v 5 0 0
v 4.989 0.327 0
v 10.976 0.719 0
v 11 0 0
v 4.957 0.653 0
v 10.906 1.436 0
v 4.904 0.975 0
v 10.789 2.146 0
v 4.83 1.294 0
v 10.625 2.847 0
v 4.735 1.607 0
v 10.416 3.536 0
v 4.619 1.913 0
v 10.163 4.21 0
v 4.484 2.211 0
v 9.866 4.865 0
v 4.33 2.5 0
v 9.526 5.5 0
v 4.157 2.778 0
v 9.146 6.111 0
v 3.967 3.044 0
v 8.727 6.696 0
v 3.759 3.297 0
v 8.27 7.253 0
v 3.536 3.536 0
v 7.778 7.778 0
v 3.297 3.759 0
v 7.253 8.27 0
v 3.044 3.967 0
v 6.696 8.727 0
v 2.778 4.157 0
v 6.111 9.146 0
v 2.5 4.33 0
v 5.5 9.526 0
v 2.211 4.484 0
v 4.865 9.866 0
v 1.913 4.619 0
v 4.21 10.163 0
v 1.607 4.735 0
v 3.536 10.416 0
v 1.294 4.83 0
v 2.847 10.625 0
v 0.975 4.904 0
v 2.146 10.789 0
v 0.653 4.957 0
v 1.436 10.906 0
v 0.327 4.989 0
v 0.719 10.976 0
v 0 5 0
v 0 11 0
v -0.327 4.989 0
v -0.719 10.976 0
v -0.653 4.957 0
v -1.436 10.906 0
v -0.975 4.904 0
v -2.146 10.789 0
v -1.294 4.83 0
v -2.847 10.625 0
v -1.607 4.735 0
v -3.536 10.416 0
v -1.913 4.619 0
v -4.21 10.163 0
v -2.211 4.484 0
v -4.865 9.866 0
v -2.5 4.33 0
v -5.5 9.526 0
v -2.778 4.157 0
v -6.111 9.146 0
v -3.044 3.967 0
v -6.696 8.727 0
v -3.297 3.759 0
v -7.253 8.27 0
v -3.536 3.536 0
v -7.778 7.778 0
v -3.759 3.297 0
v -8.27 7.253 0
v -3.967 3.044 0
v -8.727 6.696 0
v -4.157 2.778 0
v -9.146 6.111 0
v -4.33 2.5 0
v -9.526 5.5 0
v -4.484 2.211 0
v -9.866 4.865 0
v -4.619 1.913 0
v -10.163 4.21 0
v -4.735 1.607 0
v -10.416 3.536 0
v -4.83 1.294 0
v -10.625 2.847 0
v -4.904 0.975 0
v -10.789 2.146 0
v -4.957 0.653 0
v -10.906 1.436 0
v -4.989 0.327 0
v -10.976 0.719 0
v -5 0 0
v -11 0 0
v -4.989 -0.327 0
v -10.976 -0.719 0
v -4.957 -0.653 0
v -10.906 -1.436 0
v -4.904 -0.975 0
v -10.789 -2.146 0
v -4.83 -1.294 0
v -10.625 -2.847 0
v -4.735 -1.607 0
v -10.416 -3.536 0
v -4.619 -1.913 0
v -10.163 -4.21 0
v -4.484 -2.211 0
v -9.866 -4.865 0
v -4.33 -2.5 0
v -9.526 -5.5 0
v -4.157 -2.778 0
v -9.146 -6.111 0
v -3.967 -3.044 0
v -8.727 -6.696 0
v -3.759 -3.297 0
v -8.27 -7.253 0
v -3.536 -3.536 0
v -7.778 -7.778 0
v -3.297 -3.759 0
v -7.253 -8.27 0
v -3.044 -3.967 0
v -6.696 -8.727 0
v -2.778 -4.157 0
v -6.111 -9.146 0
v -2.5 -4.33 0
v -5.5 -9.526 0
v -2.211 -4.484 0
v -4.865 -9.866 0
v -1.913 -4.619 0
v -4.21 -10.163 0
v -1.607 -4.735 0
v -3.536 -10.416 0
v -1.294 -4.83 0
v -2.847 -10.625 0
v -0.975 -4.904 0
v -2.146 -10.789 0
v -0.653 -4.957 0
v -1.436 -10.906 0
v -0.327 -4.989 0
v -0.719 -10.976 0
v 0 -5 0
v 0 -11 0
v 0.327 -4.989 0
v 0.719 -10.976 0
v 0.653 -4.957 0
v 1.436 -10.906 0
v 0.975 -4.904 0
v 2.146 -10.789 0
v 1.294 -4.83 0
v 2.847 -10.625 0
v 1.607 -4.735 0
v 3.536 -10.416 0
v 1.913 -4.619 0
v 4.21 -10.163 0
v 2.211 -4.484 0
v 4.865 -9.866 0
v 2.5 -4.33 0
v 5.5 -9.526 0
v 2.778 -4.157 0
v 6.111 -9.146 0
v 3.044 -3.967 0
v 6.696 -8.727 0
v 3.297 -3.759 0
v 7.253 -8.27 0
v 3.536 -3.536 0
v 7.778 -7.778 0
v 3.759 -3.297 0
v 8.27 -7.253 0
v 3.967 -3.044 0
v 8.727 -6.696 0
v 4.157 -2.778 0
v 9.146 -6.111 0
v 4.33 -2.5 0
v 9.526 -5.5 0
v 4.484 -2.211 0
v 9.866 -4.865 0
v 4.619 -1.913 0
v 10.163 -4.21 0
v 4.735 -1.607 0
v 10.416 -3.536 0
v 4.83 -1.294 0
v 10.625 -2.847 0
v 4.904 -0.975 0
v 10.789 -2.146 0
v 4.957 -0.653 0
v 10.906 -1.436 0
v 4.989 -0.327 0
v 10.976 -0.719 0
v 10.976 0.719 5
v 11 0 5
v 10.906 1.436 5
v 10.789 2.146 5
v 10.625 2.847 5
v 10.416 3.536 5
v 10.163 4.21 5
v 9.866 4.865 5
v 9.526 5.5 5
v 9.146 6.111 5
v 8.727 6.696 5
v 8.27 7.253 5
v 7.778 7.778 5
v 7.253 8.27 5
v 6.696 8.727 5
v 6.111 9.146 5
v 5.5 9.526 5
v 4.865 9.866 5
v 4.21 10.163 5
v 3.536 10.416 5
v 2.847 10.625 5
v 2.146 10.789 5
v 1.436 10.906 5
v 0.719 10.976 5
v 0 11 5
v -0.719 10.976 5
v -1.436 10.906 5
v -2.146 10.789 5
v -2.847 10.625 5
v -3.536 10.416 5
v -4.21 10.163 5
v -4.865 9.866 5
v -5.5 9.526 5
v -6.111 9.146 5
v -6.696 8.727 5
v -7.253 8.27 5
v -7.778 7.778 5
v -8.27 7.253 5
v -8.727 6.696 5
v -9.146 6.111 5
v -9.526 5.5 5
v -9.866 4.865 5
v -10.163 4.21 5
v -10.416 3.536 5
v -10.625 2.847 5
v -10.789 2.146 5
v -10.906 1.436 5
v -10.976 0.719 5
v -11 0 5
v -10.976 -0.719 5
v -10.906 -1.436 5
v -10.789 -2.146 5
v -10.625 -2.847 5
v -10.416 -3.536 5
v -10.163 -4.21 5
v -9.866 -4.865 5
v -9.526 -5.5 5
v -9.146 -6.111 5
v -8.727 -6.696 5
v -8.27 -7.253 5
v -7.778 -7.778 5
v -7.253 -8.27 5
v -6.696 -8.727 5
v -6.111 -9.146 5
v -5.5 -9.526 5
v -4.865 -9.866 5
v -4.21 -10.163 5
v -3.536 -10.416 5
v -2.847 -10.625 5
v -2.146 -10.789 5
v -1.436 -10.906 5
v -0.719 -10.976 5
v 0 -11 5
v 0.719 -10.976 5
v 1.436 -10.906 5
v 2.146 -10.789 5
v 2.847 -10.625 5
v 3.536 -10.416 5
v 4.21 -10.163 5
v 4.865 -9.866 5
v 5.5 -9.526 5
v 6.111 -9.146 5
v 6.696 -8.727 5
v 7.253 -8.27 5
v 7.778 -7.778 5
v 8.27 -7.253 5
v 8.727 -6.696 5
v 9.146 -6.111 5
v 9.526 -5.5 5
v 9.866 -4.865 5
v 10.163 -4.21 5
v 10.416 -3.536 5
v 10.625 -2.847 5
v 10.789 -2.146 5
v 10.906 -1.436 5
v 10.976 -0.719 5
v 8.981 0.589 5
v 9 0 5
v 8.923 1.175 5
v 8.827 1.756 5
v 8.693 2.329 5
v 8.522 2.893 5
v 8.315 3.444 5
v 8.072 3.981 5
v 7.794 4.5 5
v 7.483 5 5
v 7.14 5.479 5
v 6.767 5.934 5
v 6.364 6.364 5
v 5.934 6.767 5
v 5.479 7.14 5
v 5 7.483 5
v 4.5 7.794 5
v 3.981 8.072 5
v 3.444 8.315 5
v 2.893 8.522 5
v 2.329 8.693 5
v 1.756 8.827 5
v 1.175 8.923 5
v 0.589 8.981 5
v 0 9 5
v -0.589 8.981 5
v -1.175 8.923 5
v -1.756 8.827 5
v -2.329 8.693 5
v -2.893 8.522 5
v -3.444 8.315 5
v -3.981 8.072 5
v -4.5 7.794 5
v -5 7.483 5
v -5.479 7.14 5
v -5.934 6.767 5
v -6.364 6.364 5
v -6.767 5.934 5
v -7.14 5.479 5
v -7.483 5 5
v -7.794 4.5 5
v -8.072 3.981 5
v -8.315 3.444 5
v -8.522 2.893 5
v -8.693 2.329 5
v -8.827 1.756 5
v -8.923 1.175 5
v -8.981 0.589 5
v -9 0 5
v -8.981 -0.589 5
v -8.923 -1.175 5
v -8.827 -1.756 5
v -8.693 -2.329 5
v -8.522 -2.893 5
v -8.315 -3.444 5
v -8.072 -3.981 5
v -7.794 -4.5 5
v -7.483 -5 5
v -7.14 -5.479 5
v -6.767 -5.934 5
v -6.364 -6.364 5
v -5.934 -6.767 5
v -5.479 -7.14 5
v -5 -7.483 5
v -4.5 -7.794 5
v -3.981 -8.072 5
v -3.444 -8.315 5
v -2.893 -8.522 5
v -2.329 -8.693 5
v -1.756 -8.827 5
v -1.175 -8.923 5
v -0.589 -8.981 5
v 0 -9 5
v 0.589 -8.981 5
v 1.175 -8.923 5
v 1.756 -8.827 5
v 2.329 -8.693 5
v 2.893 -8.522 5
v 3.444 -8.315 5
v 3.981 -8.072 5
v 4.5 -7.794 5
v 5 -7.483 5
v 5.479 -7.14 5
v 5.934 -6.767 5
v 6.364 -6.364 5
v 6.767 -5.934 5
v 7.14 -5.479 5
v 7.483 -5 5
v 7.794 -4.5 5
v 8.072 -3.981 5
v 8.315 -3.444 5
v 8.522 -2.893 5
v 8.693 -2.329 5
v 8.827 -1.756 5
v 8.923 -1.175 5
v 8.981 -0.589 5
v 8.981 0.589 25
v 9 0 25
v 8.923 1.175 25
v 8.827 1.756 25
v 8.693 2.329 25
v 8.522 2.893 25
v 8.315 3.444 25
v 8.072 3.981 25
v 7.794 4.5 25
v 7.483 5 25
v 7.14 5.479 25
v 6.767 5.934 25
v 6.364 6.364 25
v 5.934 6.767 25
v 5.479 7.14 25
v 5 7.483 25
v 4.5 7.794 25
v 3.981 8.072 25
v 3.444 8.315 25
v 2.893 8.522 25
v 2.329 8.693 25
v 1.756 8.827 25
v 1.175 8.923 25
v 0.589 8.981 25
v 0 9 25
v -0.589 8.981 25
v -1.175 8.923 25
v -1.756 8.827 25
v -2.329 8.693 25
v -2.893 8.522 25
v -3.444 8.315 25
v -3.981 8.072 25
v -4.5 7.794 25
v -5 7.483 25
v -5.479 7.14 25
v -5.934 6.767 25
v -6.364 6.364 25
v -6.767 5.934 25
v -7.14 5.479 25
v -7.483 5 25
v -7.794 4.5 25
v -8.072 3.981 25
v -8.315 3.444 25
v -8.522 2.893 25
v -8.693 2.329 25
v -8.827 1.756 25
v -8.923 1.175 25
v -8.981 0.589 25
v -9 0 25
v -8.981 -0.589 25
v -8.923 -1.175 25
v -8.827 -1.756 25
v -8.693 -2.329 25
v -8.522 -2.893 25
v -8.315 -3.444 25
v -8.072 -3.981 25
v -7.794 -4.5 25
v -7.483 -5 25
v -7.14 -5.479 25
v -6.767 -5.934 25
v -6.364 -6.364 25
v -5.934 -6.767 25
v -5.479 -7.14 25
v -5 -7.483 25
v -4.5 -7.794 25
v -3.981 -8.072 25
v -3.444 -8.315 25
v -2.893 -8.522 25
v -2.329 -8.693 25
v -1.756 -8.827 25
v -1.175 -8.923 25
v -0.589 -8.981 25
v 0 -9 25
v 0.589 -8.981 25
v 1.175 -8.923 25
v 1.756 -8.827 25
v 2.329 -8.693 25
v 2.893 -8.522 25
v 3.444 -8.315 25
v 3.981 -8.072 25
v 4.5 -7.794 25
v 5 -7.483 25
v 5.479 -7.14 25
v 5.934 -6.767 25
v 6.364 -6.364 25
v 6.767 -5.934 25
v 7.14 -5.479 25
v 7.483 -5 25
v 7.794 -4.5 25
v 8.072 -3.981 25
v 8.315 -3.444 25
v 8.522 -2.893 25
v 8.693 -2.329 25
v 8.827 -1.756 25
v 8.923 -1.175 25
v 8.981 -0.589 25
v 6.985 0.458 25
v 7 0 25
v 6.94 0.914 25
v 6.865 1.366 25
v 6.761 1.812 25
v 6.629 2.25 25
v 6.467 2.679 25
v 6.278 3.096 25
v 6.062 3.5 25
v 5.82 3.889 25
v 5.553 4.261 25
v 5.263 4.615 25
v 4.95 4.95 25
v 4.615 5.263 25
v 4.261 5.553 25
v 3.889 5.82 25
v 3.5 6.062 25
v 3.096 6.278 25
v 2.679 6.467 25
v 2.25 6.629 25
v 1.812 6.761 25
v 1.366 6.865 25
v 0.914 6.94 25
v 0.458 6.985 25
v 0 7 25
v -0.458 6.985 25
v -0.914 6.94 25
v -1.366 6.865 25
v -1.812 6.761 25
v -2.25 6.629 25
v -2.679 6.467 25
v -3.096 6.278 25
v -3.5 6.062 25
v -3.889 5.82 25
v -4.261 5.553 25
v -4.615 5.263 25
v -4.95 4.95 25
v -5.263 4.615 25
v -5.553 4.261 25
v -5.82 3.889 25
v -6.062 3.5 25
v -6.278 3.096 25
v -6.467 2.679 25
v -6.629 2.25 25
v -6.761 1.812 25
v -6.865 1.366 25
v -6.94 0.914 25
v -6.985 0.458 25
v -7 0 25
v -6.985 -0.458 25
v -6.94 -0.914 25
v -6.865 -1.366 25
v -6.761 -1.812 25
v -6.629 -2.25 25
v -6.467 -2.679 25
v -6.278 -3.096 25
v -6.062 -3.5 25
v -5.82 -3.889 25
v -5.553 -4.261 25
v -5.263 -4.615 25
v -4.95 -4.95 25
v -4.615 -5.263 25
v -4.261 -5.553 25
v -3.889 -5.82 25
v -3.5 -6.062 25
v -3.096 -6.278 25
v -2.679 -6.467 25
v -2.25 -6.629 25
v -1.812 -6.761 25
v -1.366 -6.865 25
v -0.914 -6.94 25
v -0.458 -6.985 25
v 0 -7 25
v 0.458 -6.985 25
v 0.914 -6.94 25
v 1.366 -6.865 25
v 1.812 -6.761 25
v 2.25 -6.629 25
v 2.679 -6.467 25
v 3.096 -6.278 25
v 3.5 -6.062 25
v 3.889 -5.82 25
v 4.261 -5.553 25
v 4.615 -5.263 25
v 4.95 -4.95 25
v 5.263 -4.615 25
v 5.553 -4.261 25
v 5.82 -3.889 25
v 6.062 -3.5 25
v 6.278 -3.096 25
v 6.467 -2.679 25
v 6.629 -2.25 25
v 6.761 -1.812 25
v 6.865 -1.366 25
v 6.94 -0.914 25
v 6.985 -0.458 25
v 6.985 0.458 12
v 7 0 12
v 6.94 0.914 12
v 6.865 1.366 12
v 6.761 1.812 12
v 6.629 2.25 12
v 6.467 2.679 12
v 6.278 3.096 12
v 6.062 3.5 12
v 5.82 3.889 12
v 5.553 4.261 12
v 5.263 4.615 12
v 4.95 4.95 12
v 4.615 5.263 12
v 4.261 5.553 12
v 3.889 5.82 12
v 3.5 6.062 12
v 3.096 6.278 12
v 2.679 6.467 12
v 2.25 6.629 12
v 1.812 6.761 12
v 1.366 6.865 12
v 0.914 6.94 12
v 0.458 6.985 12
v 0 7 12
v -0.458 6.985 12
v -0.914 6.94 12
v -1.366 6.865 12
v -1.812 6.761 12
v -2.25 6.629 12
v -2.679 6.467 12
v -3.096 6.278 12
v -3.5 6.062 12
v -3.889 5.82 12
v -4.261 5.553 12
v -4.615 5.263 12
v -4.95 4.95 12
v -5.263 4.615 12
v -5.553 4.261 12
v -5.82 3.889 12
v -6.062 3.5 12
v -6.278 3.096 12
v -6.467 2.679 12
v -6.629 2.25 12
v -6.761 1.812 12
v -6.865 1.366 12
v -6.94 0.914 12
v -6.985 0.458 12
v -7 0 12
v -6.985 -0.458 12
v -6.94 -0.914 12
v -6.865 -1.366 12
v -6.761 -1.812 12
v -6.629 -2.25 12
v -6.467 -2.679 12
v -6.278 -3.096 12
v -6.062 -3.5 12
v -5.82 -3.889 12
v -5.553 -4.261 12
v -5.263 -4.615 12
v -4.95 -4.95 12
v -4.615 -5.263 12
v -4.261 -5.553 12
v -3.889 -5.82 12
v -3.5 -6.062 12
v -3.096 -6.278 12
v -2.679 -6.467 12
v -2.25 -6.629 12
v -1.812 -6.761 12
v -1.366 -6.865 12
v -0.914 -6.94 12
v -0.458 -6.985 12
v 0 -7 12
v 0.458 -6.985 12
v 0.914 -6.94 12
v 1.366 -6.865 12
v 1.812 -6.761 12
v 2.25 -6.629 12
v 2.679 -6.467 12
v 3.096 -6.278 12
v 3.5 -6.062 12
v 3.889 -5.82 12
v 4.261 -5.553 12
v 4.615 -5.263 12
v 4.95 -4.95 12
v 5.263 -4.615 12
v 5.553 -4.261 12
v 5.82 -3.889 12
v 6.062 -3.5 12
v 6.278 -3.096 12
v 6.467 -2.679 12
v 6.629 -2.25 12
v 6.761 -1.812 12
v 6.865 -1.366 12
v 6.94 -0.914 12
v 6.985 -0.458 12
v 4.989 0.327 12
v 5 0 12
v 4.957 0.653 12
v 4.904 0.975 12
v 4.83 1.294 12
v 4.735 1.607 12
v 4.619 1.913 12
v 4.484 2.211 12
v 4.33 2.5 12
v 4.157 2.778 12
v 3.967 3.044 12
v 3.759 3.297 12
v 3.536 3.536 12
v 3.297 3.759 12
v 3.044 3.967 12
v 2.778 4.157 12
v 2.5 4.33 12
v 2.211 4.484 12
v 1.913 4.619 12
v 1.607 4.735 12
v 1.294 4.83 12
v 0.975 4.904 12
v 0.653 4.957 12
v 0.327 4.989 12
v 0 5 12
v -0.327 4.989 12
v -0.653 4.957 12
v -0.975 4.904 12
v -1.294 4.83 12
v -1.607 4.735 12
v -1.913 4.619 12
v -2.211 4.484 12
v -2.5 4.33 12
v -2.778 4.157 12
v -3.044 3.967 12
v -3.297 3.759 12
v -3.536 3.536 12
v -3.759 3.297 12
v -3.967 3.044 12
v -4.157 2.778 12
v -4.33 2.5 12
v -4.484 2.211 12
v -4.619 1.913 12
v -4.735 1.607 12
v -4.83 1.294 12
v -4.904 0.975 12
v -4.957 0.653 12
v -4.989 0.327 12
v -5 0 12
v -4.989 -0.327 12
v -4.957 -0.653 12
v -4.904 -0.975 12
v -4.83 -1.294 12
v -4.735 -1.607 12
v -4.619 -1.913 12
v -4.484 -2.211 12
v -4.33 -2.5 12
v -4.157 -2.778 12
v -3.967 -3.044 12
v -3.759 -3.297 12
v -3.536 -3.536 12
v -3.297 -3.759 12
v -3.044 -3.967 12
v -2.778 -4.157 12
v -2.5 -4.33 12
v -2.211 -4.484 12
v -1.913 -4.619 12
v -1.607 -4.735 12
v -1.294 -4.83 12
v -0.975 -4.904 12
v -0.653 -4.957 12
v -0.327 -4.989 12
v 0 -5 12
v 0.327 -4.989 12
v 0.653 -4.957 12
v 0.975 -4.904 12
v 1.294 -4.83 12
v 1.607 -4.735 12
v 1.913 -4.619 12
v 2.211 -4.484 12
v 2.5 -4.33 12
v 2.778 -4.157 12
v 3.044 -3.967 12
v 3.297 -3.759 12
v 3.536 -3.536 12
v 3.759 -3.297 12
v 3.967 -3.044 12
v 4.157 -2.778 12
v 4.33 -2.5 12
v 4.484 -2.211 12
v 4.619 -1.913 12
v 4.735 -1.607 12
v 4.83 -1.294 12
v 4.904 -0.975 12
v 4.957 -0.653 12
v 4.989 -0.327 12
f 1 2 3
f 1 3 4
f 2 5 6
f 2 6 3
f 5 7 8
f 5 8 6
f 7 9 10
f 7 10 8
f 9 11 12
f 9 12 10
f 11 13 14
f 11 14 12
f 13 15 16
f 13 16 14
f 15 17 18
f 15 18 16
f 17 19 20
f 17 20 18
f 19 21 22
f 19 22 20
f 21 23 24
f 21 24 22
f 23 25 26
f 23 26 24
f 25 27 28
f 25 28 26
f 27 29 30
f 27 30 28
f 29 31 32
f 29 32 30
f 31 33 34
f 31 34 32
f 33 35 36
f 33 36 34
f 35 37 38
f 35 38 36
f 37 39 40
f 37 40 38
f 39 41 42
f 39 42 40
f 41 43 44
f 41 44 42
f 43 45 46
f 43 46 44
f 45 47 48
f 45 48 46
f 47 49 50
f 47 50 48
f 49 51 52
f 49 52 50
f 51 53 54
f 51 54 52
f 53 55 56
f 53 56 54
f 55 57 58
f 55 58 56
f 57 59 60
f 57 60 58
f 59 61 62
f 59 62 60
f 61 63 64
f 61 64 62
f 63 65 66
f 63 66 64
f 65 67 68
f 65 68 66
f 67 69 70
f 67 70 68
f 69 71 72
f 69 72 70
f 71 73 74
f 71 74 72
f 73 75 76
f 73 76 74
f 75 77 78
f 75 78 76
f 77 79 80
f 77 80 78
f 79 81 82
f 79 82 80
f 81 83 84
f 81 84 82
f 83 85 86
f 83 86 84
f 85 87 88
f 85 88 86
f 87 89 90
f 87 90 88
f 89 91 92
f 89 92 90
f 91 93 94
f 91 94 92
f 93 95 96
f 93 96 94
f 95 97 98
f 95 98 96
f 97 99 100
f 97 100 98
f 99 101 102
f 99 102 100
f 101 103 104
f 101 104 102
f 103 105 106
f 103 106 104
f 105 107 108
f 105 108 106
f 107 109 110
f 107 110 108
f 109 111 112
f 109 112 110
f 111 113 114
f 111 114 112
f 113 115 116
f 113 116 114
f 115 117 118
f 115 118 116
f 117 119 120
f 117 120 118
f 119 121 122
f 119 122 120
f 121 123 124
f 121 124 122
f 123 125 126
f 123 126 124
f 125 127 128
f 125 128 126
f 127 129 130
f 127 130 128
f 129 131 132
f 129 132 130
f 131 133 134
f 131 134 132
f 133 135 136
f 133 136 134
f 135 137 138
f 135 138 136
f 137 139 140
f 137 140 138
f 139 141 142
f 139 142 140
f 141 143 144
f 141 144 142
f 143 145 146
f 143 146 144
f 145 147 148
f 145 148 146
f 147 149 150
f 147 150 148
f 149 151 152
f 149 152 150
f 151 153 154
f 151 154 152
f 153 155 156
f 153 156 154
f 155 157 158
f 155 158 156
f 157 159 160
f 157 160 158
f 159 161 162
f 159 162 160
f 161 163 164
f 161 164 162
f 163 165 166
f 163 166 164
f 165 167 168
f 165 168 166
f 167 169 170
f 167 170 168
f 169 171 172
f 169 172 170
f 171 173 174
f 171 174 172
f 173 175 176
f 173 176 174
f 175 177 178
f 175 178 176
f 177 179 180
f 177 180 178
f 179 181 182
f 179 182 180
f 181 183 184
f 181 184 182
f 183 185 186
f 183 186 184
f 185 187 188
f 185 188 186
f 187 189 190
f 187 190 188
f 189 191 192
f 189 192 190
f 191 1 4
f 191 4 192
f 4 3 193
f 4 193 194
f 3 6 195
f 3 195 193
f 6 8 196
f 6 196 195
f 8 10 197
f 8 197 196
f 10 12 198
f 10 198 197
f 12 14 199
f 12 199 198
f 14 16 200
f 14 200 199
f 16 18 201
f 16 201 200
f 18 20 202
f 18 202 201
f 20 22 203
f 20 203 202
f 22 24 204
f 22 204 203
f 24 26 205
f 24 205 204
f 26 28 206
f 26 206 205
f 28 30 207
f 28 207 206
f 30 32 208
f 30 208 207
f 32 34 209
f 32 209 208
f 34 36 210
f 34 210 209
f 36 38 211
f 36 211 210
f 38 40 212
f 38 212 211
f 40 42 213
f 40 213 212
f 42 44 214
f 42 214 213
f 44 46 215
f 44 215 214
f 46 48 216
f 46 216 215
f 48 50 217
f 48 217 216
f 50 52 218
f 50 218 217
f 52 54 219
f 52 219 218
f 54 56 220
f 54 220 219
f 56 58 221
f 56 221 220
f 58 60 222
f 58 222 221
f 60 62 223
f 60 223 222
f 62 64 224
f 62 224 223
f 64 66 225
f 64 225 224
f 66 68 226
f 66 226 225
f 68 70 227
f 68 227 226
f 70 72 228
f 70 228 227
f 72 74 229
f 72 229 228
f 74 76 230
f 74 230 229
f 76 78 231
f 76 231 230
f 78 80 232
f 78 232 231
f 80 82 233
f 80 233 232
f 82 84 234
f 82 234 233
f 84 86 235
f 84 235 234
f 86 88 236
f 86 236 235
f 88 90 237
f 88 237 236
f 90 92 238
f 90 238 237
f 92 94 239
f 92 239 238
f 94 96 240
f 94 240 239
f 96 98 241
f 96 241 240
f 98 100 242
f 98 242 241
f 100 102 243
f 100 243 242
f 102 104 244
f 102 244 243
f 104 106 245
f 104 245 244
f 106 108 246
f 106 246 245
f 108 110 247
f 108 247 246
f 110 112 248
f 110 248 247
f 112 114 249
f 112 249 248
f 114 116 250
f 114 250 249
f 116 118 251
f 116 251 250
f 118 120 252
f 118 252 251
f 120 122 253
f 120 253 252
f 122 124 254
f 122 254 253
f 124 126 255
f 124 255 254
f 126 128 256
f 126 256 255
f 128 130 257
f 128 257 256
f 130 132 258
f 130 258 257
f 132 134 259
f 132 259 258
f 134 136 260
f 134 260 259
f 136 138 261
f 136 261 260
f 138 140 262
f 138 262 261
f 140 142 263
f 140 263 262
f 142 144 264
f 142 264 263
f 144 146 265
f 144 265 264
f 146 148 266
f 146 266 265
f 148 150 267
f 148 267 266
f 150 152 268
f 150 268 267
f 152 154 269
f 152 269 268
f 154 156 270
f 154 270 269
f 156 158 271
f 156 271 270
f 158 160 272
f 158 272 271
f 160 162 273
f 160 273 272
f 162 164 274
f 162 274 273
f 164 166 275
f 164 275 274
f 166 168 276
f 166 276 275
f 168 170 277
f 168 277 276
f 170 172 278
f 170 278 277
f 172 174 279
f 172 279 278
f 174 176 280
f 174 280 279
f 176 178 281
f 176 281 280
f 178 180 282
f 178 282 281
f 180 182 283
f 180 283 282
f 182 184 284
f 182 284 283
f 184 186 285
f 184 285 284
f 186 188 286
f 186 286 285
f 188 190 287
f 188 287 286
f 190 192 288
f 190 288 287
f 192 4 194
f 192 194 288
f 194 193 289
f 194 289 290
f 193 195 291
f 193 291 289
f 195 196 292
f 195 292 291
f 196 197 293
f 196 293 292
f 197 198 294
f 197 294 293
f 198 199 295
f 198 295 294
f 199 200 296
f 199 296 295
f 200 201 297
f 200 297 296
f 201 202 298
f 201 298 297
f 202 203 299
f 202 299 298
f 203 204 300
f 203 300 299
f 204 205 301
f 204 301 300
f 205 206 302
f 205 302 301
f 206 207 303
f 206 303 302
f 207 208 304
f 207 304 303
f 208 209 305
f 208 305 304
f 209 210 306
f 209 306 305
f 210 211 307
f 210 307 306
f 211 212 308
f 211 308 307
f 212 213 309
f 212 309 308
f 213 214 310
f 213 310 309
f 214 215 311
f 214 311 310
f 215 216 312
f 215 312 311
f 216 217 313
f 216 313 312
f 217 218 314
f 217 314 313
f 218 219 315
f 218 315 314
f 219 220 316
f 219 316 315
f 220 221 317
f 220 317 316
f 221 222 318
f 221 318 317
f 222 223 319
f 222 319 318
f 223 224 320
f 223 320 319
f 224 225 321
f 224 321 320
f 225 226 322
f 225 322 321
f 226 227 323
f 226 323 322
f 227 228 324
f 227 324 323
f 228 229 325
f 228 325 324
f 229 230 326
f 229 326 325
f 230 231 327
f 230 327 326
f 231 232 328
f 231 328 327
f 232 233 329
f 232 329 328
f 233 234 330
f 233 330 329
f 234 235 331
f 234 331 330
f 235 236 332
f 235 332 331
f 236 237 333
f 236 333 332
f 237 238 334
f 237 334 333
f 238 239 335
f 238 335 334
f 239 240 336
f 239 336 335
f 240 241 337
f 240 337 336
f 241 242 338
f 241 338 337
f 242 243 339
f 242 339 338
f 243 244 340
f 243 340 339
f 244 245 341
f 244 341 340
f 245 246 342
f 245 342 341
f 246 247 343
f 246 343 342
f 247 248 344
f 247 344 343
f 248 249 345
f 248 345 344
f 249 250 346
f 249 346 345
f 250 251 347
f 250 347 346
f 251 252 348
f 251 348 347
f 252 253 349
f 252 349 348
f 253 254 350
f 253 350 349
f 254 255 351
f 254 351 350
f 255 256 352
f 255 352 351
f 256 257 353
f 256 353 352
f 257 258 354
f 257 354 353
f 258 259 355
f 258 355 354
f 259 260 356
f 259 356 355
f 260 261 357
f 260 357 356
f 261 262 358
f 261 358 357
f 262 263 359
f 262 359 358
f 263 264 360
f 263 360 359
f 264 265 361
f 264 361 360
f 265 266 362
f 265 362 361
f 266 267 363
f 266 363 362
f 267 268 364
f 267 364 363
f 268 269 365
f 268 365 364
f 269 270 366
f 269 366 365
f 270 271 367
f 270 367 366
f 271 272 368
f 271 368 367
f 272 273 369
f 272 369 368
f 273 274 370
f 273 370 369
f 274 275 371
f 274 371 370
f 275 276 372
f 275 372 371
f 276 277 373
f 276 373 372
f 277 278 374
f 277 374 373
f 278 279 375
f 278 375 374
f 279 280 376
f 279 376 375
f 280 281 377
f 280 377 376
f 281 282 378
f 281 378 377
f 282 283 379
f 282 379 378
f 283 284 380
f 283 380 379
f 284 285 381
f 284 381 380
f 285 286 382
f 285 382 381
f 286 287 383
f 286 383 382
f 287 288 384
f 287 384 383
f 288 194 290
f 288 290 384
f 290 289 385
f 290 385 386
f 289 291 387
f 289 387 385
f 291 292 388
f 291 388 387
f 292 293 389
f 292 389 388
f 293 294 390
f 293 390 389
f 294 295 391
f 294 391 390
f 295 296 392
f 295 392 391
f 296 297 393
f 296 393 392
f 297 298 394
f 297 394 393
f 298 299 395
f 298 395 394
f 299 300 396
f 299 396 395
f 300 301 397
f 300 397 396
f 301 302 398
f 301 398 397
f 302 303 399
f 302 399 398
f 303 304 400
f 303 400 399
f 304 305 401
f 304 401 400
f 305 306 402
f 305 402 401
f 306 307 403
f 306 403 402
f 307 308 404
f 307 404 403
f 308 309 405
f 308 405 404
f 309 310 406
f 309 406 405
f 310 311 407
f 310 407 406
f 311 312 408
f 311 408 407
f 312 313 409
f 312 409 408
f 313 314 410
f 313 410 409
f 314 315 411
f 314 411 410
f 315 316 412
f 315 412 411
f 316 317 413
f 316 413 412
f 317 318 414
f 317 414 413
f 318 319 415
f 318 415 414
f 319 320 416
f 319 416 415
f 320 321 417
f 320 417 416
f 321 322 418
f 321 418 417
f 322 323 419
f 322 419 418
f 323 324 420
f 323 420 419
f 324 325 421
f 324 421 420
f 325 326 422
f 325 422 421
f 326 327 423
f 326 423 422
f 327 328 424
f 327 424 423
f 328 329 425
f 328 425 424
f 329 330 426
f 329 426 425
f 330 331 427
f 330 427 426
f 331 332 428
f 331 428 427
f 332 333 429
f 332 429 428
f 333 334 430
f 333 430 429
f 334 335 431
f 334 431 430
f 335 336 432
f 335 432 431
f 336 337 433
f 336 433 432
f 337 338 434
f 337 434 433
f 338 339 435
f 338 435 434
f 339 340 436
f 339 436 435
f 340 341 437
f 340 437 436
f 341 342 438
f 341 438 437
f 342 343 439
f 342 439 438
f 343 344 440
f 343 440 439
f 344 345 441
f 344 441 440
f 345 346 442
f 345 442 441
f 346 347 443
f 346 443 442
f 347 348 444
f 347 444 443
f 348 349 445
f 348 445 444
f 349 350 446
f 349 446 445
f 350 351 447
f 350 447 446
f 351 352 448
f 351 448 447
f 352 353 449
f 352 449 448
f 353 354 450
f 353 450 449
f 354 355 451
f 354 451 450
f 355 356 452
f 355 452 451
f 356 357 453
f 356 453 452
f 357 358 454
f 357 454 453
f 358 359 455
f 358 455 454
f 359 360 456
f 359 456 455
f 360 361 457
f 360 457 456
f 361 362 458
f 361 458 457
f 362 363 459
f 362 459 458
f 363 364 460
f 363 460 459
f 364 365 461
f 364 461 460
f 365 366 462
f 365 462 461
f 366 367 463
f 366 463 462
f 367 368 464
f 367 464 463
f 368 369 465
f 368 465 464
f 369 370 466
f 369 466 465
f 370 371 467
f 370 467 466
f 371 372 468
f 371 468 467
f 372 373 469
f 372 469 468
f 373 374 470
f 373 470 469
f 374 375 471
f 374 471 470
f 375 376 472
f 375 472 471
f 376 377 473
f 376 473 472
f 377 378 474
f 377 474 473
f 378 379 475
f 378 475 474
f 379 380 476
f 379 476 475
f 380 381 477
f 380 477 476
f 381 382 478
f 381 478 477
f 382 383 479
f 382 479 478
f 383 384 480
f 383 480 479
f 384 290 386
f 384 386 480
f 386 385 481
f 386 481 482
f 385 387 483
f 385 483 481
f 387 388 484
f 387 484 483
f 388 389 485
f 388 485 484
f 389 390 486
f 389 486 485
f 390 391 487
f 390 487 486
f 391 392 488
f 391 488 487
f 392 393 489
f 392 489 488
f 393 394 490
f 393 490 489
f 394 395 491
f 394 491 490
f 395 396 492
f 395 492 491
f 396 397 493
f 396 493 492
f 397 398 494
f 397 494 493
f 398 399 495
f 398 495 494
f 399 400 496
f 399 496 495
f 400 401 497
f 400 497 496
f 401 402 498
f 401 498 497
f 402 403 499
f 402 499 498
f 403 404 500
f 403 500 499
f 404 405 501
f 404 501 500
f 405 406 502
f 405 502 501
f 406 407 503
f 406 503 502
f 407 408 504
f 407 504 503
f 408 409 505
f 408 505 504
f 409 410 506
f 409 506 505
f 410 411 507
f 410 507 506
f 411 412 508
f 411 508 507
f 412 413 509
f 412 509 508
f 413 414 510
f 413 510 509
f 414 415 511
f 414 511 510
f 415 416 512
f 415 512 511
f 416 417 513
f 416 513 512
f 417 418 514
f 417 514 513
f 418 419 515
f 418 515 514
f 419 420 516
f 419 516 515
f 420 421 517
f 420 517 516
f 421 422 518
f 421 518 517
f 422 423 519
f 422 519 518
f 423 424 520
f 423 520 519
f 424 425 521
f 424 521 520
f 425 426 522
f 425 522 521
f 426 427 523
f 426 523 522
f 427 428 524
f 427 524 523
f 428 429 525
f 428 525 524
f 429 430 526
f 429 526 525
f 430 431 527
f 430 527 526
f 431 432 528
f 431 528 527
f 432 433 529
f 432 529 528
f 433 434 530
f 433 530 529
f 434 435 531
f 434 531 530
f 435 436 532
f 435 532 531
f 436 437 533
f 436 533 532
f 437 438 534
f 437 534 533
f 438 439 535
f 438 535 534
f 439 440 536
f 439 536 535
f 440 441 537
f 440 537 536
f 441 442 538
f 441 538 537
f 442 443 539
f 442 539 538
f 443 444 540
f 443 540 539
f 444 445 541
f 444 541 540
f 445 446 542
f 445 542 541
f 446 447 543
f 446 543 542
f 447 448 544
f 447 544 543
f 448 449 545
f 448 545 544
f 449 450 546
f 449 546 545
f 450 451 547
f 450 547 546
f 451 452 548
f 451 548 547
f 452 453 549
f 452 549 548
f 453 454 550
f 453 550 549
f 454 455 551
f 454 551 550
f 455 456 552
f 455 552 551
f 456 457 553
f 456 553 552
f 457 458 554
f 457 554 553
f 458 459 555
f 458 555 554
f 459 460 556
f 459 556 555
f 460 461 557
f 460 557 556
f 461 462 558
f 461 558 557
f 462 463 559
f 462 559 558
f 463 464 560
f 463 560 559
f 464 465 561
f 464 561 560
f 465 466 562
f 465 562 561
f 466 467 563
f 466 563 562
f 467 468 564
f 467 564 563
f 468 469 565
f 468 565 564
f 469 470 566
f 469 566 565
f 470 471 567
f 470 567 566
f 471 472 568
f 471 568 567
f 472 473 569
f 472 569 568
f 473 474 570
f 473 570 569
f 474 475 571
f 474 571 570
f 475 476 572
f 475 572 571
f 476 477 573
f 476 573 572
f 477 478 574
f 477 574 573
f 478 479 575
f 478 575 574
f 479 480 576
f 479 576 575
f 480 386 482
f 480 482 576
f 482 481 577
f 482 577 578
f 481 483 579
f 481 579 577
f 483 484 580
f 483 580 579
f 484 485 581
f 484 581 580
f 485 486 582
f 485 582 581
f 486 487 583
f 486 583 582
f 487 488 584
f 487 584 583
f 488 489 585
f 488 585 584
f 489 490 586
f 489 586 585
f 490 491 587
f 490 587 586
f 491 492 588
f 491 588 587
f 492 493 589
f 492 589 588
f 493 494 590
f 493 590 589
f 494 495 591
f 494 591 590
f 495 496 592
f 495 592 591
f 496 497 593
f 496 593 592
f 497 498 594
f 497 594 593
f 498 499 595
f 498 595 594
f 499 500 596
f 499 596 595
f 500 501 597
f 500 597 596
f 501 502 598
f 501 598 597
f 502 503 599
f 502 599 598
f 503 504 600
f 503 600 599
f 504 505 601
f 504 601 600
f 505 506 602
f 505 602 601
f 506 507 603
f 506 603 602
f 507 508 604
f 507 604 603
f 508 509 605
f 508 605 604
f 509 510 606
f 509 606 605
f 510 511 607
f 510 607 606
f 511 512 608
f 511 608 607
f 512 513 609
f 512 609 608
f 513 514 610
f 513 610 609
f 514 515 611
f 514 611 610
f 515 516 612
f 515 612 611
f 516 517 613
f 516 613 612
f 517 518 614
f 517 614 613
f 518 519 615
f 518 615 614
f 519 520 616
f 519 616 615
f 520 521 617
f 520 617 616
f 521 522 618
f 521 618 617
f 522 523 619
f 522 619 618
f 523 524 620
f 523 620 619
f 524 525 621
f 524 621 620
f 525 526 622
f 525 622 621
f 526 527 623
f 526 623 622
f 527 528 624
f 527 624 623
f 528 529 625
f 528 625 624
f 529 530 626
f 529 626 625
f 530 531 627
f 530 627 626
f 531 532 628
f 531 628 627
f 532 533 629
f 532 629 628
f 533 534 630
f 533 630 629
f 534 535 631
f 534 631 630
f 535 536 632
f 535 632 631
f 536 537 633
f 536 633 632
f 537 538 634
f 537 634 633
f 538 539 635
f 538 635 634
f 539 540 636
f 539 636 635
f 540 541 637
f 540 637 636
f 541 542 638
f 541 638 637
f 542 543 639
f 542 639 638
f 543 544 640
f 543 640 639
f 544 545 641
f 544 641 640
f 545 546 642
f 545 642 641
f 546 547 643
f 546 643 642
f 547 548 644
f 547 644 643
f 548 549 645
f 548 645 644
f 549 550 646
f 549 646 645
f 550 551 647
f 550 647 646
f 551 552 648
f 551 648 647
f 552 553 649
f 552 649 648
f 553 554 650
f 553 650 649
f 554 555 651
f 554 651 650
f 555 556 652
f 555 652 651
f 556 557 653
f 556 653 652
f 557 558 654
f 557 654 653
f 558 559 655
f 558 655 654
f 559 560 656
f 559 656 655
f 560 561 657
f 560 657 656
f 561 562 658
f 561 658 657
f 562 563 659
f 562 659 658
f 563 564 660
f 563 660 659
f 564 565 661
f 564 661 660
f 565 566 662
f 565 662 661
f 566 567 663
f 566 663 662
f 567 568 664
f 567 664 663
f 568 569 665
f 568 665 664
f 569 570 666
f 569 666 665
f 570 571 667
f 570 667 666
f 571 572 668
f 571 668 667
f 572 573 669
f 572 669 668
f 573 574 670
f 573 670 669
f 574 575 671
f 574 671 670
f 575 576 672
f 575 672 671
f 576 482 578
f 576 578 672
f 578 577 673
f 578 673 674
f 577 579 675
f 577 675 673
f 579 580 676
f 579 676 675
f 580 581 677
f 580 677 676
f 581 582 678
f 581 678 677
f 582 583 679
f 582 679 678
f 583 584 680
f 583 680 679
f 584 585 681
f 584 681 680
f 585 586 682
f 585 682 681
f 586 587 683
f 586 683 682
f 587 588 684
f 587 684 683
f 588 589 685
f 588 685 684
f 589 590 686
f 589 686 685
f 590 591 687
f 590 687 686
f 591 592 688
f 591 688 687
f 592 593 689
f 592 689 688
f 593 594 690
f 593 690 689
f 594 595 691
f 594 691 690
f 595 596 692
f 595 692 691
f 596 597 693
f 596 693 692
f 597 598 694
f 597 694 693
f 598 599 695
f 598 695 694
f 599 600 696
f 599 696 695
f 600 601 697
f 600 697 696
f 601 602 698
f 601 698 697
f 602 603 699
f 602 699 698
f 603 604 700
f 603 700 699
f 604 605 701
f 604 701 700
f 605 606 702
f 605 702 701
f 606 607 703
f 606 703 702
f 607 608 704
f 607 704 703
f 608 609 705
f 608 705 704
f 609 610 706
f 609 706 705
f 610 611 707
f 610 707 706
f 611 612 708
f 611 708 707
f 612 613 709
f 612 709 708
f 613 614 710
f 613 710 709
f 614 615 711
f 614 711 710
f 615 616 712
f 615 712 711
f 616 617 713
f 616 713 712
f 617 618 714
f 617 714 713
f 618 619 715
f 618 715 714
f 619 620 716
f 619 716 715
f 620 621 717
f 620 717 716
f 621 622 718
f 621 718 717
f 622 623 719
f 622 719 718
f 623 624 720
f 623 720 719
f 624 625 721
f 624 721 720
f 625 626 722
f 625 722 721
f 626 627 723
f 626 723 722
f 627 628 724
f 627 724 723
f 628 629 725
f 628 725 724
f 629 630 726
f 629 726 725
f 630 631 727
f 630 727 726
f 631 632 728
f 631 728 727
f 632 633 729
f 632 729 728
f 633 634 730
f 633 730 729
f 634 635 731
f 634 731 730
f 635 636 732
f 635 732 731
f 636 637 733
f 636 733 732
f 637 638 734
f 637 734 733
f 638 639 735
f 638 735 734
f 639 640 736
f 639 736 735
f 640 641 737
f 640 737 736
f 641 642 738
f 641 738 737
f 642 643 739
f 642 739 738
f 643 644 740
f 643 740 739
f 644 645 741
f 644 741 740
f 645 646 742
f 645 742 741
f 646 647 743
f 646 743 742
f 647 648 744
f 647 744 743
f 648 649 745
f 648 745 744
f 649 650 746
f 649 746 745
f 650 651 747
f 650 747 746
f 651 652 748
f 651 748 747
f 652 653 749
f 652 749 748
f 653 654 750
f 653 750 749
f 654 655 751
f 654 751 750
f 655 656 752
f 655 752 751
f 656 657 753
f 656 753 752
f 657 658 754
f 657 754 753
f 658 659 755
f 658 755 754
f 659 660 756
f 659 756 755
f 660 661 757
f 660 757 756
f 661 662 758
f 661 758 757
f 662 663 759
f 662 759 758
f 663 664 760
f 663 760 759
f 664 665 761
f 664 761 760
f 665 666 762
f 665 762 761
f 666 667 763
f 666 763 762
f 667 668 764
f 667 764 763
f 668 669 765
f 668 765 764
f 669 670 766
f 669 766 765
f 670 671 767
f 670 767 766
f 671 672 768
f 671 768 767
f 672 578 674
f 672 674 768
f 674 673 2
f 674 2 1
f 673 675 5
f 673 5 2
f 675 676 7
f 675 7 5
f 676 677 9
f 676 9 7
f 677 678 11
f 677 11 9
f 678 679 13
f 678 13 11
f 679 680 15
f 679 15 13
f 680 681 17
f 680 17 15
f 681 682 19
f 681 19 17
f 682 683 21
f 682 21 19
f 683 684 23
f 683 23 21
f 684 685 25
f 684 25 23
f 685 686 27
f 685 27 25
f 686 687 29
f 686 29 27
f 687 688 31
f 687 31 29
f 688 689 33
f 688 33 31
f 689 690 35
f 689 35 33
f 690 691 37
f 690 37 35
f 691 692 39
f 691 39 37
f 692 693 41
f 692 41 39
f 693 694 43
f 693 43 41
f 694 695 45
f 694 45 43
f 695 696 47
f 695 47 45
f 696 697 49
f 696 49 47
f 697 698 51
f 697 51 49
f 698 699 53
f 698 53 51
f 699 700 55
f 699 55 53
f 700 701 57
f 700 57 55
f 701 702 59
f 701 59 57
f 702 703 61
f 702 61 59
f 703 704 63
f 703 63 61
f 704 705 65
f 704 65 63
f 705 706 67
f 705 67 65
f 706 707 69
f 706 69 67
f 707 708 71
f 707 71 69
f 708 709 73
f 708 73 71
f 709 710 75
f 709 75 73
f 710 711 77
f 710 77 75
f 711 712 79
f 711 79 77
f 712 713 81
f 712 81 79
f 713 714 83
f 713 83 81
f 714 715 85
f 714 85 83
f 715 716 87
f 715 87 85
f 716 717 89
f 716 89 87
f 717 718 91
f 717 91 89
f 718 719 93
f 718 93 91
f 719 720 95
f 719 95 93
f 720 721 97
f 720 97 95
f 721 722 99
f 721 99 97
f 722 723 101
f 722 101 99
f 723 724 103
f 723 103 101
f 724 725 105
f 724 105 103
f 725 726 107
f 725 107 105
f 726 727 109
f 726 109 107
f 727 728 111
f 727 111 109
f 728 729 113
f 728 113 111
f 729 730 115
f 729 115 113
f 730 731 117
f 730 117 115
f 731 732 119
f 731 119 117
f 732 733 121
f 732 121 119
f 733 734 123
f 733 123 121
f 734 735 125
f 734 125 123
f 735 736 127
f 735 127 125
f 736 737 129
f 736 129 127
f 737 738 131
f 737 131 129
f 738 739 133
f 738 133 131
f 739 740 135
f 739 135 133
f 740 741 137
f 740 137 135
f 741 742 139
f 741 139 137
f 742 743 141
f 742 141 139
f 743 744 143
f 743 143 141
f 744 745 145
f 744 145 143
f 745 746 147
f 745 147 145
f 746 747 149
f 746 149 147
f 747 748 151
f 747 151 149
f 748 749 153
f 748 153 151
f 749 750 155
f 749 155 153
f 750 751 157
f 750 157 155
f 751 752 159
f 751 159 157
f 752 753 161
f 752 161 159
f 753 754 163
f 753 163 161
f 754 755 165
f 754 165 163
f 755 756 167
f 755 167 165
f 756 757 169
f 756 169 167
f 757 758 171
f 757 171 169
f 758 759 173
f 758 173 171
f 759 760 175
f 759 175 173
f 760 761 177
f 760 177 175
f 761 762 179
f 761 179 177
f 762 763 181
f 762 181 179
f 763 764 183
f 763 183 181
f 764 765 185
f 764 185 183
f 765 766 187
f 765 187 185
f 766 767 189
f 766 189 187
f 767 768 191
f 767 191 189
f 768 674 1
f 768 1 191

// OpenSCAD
// Original MechIntel educational model. CC0-1.0. Units: mm.
// Not a standardized or load-rated component.
$fn=96;
// Section points: [radius, height], mm. Edit to change the profile.
section=[[5, 0], [11, 0], [11, 5], [9, 5], [9, 25], [7, 25], [7, 12], [5, 12]];
rotate_extrude($fn=96) polygon(points=section);
